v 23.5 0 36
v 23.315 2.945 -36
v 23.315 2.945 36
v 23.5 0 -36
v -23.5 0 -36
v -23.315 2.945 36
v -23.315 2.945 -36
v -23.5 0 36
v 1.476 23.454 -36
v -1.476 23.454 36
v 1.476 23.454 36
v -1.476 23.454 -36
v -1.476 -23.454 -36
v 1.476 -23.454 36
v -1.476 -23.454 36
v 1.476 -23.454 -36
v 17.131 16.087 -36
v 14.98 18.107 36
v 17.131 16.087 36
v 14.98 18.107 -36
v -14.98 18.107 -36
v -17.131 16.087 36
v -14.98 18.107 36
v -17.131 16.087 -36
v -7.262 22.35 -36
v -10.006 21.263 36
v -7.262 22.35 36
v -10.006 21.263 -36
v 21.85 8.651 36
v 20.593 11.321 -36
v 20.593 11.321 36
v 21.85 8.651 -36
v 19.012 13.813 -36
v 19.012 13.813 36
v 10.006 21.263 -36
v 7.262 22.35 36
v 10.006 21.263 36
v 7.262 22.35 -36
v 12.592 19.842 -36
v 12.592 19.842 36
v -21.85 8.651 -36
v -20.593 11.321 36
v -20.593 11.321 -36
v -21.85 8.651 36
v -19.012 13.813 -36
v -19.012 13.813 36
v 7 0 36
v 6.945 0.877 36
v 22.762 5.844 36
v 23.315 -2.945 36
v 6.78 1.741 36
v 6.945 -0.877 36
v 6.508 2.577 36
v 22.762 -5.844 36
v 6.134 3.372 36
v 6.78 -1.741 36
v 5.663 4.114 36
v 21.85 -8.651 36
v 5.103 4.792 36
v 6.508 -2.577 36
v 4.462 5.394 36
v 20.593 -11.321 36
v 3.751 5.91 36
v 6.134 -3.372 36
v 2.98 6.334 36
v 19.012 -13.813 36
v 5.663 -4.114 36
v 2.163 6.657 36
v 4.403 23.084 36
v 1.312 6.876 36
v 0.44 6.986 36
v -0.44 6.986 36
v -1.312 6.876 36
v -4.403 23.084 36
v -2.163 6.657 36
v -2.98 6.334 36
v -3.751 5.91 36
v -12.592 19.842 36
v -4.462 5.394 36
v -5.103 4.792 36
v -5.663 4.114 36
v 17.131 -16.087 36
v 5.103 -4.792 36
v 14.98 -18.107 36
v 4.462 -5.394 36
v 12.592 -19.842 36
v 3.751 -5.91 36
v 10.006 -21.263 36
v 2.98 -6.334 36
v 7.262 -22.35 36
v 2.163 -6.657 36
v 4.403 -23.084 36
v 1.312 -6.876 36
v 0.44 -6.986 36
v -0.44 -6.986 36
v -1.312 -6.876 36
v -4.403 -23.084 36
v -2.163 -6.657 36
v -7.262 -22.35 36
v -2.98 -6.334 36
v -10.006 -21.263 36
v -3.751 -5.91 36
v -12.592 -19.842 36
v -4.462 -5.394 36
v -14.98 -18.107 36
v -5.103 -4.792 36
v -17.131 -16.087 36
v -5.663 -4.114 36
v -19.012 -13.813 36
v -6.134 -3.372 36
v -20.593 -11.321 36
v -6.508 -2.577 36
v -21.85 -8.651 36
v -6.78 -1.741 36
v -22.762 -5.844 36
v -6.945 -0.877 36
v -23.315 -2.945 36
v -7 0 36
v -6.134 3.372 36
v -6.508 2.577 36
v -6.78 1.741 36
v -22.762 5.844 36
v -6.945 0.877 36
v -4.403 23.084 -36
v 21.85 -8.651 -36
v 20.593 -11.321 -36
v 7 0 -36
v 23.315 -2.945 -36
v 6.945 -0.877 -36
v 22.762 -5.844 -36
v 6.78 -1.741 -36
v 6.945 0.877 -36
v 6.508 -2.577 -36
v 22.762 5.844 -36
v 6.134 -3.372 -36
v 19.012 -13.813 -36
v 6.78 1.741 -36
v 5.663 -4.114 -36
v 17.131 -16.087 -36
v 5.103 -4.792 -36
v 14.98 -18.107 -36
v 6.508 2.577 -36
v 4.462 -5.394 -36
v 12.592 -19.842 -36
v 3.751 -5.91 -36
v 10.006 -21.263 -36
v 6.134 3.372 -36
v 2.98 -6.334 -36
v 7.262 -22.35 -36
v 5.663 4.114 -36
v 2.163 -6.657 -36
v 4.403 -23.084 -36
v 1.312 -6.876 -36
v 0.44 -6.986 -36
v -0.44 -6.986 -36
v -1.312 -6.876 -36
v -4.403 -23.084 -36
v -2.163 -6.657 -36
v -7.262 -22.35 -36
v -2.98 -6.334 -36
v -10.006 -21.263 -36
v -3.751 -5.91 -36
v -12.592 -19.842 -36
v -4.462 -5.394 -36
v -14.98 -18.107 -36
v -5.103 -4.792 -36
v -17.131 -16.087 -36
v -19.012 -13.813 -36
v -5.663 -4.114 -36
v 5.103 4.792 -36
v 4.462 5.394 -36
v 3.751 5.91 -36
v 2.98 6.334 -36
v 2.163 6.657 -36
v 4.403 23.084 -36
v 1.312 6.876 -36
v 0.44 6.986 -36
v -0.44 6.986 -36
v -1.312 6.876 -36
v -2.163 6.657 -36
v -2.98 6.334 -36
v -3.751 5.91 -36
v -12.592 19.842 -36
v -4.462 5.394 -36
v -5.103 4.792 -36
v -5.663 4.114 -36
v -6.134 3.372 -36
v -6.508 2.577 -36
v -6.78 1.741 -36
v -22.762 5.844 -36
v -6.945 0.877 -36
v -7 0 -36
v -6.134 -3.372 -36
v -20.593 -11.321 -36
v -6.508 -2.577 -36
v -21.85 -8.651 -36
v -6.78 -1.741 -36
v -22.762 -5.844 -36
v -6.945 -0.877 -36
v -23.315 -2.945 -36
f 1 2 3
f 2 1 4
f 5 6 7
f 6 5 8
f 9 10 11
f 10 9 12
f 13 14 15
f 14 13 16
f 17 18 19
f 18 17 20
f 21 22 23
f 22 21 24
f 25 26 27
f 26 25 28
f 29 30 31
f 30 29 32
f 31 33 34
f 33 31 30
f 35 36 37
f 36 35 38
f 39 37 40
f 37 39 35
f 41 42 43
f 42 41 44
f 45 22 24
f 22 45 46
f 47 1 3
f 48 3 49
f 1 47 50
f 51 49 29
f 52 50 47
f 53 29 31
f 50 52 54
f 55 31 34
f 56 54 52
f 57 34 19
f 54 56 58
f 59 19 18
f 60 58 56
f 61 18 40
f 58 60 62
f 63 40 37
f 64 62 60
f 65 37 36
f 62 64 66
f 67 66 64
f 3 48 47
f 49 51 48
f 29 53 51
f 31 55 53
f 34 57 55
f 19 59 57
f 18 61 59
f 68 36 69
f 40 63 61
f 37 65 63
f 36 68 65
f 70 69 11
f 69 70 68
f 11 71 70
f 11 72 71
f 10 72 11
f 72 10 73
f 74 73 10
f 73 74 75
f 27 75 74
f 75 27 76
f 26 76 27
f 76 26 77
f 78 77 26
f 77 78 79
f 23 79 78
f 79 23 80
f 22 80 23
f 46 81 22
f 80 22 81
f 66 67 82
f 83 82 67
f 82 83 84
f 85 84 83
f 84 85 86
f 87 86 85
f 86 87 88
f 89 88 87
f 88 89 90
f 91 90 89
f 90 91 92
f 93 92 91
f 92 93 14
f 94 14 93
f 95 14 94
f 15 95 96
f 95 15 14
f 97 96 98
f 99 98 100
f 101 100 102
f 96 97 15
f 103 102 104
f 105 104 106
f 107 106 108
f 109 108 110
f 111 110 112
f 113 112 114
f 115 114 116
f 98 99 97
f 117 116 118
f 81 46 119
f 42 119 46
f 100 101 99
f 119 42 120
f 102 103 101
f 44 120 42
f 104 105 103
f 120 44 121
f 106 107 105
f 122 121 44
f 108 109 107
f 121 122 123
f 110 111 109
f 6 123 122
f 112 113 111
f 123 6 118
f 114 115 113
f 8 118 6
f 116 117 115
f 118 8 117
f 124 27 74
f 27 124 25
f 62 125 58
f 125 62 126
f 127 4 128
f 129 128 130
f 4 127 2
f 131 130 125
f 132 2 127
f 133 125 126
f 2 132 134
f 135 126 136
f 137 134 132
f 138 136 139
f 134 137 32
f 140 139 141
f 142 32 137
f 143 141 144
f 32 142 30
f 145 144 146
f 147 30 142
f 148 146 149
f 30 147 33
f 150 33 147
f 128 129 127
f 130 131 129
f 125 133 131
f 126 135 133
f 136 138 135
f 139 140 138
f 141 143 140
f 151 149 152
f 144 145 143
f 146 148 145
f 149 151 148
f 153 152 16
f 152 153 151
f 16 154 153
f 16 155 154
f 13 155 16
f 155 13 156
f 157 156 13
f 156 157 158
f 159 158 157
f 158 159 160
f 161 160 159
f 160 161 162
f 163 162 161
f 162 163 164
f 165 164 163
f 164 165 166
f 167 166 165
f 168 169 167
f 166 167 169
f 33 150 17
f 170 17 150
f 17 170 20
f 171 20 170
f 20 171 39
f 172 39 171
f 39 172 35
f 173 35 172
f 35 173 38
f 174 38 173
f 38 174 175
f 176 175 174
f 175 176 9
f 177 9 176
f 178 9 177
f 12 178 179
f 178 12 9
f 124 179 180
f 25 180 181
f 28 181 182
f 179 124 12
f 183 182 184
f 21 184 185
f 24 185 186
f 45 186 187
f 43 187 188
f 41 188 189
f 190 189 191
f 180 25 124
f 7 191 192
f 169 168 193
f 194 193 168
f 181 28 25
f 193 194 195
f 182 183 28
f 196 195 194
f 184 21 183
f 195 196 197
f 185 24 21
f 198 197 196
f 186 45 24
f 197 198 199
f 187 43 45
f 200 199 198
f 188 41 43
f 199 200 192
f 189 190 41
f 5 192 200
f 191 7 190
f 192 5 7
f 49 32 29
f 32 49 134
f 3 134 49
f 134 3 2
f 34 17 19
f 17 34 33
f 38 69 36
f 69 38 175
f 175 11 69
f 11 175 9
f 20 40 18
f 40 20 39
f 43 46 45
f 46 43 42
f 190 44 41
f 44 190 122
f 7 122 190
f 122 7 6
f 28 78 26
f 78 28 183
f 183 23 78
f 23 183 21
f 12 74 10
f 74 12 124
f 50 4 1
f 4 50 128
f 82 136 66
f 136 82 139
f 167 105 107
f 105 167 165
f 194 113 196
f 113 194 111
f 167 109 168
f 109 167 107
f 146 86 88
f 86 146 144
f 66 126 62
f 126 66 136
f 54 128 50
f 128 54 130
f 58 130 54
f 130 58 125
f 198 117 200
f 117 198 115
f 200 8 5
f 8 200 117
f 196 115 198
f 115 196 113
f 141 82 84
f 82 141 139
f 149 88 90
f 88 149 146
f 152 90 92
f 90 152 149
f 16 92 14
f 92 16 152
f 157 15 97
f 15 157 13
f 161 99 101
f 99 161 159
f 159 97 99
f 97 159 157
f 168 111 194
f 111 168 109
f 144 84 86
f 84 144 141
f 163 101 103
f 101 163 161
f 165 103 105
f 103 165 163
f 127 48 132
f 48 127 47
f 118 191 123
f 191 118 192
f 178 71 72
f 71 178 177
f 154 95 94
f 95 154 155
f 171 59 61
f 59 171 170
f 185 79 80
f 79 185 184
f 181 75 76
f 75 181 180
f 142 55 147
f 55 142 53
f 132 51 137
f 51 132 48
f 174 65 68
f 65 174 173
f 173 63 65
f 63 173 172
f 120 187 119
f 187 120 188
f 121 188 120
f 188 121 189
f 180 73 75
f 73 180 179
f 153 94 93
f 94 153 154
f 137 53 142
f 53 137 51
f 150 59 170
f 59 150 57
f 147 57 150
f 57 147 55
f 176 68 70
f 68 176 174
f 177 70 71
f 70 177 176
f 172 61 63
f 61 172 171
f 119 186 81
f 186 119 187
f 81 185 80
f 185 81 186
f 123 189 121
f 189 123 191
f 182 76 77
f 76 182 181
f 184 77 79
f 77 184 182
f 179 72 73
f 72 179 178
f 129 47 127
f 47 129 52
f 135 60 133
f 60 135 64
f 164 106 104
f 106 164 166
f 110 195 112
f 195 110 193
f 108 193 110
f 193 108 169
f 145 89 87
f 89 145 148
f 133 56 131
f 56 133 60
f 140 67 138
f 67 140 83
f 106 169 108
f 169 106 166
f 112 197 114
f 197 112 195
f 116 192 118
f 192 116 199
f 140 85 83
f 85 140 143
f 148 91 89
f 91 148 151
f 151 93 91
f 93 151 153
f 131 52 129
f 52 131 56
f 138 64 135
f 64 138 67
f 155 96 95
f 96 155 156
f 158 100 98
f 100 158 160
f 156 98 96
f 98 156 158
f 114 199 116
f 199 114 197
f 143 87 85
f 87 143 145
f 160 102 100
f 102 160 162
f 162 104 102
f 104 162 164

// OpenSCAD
$fn = 50;


difference() {
	union() {
		translate(v = [0, 0, -36.0000000000]) {
			cylinder(h = 72, r = 23.5000000000);
		}
	}
	union() {
		translate(v = [0, 0, -100.0000000000]) {
			cylinder(h = 200, r = 7);
		}
	}
}
